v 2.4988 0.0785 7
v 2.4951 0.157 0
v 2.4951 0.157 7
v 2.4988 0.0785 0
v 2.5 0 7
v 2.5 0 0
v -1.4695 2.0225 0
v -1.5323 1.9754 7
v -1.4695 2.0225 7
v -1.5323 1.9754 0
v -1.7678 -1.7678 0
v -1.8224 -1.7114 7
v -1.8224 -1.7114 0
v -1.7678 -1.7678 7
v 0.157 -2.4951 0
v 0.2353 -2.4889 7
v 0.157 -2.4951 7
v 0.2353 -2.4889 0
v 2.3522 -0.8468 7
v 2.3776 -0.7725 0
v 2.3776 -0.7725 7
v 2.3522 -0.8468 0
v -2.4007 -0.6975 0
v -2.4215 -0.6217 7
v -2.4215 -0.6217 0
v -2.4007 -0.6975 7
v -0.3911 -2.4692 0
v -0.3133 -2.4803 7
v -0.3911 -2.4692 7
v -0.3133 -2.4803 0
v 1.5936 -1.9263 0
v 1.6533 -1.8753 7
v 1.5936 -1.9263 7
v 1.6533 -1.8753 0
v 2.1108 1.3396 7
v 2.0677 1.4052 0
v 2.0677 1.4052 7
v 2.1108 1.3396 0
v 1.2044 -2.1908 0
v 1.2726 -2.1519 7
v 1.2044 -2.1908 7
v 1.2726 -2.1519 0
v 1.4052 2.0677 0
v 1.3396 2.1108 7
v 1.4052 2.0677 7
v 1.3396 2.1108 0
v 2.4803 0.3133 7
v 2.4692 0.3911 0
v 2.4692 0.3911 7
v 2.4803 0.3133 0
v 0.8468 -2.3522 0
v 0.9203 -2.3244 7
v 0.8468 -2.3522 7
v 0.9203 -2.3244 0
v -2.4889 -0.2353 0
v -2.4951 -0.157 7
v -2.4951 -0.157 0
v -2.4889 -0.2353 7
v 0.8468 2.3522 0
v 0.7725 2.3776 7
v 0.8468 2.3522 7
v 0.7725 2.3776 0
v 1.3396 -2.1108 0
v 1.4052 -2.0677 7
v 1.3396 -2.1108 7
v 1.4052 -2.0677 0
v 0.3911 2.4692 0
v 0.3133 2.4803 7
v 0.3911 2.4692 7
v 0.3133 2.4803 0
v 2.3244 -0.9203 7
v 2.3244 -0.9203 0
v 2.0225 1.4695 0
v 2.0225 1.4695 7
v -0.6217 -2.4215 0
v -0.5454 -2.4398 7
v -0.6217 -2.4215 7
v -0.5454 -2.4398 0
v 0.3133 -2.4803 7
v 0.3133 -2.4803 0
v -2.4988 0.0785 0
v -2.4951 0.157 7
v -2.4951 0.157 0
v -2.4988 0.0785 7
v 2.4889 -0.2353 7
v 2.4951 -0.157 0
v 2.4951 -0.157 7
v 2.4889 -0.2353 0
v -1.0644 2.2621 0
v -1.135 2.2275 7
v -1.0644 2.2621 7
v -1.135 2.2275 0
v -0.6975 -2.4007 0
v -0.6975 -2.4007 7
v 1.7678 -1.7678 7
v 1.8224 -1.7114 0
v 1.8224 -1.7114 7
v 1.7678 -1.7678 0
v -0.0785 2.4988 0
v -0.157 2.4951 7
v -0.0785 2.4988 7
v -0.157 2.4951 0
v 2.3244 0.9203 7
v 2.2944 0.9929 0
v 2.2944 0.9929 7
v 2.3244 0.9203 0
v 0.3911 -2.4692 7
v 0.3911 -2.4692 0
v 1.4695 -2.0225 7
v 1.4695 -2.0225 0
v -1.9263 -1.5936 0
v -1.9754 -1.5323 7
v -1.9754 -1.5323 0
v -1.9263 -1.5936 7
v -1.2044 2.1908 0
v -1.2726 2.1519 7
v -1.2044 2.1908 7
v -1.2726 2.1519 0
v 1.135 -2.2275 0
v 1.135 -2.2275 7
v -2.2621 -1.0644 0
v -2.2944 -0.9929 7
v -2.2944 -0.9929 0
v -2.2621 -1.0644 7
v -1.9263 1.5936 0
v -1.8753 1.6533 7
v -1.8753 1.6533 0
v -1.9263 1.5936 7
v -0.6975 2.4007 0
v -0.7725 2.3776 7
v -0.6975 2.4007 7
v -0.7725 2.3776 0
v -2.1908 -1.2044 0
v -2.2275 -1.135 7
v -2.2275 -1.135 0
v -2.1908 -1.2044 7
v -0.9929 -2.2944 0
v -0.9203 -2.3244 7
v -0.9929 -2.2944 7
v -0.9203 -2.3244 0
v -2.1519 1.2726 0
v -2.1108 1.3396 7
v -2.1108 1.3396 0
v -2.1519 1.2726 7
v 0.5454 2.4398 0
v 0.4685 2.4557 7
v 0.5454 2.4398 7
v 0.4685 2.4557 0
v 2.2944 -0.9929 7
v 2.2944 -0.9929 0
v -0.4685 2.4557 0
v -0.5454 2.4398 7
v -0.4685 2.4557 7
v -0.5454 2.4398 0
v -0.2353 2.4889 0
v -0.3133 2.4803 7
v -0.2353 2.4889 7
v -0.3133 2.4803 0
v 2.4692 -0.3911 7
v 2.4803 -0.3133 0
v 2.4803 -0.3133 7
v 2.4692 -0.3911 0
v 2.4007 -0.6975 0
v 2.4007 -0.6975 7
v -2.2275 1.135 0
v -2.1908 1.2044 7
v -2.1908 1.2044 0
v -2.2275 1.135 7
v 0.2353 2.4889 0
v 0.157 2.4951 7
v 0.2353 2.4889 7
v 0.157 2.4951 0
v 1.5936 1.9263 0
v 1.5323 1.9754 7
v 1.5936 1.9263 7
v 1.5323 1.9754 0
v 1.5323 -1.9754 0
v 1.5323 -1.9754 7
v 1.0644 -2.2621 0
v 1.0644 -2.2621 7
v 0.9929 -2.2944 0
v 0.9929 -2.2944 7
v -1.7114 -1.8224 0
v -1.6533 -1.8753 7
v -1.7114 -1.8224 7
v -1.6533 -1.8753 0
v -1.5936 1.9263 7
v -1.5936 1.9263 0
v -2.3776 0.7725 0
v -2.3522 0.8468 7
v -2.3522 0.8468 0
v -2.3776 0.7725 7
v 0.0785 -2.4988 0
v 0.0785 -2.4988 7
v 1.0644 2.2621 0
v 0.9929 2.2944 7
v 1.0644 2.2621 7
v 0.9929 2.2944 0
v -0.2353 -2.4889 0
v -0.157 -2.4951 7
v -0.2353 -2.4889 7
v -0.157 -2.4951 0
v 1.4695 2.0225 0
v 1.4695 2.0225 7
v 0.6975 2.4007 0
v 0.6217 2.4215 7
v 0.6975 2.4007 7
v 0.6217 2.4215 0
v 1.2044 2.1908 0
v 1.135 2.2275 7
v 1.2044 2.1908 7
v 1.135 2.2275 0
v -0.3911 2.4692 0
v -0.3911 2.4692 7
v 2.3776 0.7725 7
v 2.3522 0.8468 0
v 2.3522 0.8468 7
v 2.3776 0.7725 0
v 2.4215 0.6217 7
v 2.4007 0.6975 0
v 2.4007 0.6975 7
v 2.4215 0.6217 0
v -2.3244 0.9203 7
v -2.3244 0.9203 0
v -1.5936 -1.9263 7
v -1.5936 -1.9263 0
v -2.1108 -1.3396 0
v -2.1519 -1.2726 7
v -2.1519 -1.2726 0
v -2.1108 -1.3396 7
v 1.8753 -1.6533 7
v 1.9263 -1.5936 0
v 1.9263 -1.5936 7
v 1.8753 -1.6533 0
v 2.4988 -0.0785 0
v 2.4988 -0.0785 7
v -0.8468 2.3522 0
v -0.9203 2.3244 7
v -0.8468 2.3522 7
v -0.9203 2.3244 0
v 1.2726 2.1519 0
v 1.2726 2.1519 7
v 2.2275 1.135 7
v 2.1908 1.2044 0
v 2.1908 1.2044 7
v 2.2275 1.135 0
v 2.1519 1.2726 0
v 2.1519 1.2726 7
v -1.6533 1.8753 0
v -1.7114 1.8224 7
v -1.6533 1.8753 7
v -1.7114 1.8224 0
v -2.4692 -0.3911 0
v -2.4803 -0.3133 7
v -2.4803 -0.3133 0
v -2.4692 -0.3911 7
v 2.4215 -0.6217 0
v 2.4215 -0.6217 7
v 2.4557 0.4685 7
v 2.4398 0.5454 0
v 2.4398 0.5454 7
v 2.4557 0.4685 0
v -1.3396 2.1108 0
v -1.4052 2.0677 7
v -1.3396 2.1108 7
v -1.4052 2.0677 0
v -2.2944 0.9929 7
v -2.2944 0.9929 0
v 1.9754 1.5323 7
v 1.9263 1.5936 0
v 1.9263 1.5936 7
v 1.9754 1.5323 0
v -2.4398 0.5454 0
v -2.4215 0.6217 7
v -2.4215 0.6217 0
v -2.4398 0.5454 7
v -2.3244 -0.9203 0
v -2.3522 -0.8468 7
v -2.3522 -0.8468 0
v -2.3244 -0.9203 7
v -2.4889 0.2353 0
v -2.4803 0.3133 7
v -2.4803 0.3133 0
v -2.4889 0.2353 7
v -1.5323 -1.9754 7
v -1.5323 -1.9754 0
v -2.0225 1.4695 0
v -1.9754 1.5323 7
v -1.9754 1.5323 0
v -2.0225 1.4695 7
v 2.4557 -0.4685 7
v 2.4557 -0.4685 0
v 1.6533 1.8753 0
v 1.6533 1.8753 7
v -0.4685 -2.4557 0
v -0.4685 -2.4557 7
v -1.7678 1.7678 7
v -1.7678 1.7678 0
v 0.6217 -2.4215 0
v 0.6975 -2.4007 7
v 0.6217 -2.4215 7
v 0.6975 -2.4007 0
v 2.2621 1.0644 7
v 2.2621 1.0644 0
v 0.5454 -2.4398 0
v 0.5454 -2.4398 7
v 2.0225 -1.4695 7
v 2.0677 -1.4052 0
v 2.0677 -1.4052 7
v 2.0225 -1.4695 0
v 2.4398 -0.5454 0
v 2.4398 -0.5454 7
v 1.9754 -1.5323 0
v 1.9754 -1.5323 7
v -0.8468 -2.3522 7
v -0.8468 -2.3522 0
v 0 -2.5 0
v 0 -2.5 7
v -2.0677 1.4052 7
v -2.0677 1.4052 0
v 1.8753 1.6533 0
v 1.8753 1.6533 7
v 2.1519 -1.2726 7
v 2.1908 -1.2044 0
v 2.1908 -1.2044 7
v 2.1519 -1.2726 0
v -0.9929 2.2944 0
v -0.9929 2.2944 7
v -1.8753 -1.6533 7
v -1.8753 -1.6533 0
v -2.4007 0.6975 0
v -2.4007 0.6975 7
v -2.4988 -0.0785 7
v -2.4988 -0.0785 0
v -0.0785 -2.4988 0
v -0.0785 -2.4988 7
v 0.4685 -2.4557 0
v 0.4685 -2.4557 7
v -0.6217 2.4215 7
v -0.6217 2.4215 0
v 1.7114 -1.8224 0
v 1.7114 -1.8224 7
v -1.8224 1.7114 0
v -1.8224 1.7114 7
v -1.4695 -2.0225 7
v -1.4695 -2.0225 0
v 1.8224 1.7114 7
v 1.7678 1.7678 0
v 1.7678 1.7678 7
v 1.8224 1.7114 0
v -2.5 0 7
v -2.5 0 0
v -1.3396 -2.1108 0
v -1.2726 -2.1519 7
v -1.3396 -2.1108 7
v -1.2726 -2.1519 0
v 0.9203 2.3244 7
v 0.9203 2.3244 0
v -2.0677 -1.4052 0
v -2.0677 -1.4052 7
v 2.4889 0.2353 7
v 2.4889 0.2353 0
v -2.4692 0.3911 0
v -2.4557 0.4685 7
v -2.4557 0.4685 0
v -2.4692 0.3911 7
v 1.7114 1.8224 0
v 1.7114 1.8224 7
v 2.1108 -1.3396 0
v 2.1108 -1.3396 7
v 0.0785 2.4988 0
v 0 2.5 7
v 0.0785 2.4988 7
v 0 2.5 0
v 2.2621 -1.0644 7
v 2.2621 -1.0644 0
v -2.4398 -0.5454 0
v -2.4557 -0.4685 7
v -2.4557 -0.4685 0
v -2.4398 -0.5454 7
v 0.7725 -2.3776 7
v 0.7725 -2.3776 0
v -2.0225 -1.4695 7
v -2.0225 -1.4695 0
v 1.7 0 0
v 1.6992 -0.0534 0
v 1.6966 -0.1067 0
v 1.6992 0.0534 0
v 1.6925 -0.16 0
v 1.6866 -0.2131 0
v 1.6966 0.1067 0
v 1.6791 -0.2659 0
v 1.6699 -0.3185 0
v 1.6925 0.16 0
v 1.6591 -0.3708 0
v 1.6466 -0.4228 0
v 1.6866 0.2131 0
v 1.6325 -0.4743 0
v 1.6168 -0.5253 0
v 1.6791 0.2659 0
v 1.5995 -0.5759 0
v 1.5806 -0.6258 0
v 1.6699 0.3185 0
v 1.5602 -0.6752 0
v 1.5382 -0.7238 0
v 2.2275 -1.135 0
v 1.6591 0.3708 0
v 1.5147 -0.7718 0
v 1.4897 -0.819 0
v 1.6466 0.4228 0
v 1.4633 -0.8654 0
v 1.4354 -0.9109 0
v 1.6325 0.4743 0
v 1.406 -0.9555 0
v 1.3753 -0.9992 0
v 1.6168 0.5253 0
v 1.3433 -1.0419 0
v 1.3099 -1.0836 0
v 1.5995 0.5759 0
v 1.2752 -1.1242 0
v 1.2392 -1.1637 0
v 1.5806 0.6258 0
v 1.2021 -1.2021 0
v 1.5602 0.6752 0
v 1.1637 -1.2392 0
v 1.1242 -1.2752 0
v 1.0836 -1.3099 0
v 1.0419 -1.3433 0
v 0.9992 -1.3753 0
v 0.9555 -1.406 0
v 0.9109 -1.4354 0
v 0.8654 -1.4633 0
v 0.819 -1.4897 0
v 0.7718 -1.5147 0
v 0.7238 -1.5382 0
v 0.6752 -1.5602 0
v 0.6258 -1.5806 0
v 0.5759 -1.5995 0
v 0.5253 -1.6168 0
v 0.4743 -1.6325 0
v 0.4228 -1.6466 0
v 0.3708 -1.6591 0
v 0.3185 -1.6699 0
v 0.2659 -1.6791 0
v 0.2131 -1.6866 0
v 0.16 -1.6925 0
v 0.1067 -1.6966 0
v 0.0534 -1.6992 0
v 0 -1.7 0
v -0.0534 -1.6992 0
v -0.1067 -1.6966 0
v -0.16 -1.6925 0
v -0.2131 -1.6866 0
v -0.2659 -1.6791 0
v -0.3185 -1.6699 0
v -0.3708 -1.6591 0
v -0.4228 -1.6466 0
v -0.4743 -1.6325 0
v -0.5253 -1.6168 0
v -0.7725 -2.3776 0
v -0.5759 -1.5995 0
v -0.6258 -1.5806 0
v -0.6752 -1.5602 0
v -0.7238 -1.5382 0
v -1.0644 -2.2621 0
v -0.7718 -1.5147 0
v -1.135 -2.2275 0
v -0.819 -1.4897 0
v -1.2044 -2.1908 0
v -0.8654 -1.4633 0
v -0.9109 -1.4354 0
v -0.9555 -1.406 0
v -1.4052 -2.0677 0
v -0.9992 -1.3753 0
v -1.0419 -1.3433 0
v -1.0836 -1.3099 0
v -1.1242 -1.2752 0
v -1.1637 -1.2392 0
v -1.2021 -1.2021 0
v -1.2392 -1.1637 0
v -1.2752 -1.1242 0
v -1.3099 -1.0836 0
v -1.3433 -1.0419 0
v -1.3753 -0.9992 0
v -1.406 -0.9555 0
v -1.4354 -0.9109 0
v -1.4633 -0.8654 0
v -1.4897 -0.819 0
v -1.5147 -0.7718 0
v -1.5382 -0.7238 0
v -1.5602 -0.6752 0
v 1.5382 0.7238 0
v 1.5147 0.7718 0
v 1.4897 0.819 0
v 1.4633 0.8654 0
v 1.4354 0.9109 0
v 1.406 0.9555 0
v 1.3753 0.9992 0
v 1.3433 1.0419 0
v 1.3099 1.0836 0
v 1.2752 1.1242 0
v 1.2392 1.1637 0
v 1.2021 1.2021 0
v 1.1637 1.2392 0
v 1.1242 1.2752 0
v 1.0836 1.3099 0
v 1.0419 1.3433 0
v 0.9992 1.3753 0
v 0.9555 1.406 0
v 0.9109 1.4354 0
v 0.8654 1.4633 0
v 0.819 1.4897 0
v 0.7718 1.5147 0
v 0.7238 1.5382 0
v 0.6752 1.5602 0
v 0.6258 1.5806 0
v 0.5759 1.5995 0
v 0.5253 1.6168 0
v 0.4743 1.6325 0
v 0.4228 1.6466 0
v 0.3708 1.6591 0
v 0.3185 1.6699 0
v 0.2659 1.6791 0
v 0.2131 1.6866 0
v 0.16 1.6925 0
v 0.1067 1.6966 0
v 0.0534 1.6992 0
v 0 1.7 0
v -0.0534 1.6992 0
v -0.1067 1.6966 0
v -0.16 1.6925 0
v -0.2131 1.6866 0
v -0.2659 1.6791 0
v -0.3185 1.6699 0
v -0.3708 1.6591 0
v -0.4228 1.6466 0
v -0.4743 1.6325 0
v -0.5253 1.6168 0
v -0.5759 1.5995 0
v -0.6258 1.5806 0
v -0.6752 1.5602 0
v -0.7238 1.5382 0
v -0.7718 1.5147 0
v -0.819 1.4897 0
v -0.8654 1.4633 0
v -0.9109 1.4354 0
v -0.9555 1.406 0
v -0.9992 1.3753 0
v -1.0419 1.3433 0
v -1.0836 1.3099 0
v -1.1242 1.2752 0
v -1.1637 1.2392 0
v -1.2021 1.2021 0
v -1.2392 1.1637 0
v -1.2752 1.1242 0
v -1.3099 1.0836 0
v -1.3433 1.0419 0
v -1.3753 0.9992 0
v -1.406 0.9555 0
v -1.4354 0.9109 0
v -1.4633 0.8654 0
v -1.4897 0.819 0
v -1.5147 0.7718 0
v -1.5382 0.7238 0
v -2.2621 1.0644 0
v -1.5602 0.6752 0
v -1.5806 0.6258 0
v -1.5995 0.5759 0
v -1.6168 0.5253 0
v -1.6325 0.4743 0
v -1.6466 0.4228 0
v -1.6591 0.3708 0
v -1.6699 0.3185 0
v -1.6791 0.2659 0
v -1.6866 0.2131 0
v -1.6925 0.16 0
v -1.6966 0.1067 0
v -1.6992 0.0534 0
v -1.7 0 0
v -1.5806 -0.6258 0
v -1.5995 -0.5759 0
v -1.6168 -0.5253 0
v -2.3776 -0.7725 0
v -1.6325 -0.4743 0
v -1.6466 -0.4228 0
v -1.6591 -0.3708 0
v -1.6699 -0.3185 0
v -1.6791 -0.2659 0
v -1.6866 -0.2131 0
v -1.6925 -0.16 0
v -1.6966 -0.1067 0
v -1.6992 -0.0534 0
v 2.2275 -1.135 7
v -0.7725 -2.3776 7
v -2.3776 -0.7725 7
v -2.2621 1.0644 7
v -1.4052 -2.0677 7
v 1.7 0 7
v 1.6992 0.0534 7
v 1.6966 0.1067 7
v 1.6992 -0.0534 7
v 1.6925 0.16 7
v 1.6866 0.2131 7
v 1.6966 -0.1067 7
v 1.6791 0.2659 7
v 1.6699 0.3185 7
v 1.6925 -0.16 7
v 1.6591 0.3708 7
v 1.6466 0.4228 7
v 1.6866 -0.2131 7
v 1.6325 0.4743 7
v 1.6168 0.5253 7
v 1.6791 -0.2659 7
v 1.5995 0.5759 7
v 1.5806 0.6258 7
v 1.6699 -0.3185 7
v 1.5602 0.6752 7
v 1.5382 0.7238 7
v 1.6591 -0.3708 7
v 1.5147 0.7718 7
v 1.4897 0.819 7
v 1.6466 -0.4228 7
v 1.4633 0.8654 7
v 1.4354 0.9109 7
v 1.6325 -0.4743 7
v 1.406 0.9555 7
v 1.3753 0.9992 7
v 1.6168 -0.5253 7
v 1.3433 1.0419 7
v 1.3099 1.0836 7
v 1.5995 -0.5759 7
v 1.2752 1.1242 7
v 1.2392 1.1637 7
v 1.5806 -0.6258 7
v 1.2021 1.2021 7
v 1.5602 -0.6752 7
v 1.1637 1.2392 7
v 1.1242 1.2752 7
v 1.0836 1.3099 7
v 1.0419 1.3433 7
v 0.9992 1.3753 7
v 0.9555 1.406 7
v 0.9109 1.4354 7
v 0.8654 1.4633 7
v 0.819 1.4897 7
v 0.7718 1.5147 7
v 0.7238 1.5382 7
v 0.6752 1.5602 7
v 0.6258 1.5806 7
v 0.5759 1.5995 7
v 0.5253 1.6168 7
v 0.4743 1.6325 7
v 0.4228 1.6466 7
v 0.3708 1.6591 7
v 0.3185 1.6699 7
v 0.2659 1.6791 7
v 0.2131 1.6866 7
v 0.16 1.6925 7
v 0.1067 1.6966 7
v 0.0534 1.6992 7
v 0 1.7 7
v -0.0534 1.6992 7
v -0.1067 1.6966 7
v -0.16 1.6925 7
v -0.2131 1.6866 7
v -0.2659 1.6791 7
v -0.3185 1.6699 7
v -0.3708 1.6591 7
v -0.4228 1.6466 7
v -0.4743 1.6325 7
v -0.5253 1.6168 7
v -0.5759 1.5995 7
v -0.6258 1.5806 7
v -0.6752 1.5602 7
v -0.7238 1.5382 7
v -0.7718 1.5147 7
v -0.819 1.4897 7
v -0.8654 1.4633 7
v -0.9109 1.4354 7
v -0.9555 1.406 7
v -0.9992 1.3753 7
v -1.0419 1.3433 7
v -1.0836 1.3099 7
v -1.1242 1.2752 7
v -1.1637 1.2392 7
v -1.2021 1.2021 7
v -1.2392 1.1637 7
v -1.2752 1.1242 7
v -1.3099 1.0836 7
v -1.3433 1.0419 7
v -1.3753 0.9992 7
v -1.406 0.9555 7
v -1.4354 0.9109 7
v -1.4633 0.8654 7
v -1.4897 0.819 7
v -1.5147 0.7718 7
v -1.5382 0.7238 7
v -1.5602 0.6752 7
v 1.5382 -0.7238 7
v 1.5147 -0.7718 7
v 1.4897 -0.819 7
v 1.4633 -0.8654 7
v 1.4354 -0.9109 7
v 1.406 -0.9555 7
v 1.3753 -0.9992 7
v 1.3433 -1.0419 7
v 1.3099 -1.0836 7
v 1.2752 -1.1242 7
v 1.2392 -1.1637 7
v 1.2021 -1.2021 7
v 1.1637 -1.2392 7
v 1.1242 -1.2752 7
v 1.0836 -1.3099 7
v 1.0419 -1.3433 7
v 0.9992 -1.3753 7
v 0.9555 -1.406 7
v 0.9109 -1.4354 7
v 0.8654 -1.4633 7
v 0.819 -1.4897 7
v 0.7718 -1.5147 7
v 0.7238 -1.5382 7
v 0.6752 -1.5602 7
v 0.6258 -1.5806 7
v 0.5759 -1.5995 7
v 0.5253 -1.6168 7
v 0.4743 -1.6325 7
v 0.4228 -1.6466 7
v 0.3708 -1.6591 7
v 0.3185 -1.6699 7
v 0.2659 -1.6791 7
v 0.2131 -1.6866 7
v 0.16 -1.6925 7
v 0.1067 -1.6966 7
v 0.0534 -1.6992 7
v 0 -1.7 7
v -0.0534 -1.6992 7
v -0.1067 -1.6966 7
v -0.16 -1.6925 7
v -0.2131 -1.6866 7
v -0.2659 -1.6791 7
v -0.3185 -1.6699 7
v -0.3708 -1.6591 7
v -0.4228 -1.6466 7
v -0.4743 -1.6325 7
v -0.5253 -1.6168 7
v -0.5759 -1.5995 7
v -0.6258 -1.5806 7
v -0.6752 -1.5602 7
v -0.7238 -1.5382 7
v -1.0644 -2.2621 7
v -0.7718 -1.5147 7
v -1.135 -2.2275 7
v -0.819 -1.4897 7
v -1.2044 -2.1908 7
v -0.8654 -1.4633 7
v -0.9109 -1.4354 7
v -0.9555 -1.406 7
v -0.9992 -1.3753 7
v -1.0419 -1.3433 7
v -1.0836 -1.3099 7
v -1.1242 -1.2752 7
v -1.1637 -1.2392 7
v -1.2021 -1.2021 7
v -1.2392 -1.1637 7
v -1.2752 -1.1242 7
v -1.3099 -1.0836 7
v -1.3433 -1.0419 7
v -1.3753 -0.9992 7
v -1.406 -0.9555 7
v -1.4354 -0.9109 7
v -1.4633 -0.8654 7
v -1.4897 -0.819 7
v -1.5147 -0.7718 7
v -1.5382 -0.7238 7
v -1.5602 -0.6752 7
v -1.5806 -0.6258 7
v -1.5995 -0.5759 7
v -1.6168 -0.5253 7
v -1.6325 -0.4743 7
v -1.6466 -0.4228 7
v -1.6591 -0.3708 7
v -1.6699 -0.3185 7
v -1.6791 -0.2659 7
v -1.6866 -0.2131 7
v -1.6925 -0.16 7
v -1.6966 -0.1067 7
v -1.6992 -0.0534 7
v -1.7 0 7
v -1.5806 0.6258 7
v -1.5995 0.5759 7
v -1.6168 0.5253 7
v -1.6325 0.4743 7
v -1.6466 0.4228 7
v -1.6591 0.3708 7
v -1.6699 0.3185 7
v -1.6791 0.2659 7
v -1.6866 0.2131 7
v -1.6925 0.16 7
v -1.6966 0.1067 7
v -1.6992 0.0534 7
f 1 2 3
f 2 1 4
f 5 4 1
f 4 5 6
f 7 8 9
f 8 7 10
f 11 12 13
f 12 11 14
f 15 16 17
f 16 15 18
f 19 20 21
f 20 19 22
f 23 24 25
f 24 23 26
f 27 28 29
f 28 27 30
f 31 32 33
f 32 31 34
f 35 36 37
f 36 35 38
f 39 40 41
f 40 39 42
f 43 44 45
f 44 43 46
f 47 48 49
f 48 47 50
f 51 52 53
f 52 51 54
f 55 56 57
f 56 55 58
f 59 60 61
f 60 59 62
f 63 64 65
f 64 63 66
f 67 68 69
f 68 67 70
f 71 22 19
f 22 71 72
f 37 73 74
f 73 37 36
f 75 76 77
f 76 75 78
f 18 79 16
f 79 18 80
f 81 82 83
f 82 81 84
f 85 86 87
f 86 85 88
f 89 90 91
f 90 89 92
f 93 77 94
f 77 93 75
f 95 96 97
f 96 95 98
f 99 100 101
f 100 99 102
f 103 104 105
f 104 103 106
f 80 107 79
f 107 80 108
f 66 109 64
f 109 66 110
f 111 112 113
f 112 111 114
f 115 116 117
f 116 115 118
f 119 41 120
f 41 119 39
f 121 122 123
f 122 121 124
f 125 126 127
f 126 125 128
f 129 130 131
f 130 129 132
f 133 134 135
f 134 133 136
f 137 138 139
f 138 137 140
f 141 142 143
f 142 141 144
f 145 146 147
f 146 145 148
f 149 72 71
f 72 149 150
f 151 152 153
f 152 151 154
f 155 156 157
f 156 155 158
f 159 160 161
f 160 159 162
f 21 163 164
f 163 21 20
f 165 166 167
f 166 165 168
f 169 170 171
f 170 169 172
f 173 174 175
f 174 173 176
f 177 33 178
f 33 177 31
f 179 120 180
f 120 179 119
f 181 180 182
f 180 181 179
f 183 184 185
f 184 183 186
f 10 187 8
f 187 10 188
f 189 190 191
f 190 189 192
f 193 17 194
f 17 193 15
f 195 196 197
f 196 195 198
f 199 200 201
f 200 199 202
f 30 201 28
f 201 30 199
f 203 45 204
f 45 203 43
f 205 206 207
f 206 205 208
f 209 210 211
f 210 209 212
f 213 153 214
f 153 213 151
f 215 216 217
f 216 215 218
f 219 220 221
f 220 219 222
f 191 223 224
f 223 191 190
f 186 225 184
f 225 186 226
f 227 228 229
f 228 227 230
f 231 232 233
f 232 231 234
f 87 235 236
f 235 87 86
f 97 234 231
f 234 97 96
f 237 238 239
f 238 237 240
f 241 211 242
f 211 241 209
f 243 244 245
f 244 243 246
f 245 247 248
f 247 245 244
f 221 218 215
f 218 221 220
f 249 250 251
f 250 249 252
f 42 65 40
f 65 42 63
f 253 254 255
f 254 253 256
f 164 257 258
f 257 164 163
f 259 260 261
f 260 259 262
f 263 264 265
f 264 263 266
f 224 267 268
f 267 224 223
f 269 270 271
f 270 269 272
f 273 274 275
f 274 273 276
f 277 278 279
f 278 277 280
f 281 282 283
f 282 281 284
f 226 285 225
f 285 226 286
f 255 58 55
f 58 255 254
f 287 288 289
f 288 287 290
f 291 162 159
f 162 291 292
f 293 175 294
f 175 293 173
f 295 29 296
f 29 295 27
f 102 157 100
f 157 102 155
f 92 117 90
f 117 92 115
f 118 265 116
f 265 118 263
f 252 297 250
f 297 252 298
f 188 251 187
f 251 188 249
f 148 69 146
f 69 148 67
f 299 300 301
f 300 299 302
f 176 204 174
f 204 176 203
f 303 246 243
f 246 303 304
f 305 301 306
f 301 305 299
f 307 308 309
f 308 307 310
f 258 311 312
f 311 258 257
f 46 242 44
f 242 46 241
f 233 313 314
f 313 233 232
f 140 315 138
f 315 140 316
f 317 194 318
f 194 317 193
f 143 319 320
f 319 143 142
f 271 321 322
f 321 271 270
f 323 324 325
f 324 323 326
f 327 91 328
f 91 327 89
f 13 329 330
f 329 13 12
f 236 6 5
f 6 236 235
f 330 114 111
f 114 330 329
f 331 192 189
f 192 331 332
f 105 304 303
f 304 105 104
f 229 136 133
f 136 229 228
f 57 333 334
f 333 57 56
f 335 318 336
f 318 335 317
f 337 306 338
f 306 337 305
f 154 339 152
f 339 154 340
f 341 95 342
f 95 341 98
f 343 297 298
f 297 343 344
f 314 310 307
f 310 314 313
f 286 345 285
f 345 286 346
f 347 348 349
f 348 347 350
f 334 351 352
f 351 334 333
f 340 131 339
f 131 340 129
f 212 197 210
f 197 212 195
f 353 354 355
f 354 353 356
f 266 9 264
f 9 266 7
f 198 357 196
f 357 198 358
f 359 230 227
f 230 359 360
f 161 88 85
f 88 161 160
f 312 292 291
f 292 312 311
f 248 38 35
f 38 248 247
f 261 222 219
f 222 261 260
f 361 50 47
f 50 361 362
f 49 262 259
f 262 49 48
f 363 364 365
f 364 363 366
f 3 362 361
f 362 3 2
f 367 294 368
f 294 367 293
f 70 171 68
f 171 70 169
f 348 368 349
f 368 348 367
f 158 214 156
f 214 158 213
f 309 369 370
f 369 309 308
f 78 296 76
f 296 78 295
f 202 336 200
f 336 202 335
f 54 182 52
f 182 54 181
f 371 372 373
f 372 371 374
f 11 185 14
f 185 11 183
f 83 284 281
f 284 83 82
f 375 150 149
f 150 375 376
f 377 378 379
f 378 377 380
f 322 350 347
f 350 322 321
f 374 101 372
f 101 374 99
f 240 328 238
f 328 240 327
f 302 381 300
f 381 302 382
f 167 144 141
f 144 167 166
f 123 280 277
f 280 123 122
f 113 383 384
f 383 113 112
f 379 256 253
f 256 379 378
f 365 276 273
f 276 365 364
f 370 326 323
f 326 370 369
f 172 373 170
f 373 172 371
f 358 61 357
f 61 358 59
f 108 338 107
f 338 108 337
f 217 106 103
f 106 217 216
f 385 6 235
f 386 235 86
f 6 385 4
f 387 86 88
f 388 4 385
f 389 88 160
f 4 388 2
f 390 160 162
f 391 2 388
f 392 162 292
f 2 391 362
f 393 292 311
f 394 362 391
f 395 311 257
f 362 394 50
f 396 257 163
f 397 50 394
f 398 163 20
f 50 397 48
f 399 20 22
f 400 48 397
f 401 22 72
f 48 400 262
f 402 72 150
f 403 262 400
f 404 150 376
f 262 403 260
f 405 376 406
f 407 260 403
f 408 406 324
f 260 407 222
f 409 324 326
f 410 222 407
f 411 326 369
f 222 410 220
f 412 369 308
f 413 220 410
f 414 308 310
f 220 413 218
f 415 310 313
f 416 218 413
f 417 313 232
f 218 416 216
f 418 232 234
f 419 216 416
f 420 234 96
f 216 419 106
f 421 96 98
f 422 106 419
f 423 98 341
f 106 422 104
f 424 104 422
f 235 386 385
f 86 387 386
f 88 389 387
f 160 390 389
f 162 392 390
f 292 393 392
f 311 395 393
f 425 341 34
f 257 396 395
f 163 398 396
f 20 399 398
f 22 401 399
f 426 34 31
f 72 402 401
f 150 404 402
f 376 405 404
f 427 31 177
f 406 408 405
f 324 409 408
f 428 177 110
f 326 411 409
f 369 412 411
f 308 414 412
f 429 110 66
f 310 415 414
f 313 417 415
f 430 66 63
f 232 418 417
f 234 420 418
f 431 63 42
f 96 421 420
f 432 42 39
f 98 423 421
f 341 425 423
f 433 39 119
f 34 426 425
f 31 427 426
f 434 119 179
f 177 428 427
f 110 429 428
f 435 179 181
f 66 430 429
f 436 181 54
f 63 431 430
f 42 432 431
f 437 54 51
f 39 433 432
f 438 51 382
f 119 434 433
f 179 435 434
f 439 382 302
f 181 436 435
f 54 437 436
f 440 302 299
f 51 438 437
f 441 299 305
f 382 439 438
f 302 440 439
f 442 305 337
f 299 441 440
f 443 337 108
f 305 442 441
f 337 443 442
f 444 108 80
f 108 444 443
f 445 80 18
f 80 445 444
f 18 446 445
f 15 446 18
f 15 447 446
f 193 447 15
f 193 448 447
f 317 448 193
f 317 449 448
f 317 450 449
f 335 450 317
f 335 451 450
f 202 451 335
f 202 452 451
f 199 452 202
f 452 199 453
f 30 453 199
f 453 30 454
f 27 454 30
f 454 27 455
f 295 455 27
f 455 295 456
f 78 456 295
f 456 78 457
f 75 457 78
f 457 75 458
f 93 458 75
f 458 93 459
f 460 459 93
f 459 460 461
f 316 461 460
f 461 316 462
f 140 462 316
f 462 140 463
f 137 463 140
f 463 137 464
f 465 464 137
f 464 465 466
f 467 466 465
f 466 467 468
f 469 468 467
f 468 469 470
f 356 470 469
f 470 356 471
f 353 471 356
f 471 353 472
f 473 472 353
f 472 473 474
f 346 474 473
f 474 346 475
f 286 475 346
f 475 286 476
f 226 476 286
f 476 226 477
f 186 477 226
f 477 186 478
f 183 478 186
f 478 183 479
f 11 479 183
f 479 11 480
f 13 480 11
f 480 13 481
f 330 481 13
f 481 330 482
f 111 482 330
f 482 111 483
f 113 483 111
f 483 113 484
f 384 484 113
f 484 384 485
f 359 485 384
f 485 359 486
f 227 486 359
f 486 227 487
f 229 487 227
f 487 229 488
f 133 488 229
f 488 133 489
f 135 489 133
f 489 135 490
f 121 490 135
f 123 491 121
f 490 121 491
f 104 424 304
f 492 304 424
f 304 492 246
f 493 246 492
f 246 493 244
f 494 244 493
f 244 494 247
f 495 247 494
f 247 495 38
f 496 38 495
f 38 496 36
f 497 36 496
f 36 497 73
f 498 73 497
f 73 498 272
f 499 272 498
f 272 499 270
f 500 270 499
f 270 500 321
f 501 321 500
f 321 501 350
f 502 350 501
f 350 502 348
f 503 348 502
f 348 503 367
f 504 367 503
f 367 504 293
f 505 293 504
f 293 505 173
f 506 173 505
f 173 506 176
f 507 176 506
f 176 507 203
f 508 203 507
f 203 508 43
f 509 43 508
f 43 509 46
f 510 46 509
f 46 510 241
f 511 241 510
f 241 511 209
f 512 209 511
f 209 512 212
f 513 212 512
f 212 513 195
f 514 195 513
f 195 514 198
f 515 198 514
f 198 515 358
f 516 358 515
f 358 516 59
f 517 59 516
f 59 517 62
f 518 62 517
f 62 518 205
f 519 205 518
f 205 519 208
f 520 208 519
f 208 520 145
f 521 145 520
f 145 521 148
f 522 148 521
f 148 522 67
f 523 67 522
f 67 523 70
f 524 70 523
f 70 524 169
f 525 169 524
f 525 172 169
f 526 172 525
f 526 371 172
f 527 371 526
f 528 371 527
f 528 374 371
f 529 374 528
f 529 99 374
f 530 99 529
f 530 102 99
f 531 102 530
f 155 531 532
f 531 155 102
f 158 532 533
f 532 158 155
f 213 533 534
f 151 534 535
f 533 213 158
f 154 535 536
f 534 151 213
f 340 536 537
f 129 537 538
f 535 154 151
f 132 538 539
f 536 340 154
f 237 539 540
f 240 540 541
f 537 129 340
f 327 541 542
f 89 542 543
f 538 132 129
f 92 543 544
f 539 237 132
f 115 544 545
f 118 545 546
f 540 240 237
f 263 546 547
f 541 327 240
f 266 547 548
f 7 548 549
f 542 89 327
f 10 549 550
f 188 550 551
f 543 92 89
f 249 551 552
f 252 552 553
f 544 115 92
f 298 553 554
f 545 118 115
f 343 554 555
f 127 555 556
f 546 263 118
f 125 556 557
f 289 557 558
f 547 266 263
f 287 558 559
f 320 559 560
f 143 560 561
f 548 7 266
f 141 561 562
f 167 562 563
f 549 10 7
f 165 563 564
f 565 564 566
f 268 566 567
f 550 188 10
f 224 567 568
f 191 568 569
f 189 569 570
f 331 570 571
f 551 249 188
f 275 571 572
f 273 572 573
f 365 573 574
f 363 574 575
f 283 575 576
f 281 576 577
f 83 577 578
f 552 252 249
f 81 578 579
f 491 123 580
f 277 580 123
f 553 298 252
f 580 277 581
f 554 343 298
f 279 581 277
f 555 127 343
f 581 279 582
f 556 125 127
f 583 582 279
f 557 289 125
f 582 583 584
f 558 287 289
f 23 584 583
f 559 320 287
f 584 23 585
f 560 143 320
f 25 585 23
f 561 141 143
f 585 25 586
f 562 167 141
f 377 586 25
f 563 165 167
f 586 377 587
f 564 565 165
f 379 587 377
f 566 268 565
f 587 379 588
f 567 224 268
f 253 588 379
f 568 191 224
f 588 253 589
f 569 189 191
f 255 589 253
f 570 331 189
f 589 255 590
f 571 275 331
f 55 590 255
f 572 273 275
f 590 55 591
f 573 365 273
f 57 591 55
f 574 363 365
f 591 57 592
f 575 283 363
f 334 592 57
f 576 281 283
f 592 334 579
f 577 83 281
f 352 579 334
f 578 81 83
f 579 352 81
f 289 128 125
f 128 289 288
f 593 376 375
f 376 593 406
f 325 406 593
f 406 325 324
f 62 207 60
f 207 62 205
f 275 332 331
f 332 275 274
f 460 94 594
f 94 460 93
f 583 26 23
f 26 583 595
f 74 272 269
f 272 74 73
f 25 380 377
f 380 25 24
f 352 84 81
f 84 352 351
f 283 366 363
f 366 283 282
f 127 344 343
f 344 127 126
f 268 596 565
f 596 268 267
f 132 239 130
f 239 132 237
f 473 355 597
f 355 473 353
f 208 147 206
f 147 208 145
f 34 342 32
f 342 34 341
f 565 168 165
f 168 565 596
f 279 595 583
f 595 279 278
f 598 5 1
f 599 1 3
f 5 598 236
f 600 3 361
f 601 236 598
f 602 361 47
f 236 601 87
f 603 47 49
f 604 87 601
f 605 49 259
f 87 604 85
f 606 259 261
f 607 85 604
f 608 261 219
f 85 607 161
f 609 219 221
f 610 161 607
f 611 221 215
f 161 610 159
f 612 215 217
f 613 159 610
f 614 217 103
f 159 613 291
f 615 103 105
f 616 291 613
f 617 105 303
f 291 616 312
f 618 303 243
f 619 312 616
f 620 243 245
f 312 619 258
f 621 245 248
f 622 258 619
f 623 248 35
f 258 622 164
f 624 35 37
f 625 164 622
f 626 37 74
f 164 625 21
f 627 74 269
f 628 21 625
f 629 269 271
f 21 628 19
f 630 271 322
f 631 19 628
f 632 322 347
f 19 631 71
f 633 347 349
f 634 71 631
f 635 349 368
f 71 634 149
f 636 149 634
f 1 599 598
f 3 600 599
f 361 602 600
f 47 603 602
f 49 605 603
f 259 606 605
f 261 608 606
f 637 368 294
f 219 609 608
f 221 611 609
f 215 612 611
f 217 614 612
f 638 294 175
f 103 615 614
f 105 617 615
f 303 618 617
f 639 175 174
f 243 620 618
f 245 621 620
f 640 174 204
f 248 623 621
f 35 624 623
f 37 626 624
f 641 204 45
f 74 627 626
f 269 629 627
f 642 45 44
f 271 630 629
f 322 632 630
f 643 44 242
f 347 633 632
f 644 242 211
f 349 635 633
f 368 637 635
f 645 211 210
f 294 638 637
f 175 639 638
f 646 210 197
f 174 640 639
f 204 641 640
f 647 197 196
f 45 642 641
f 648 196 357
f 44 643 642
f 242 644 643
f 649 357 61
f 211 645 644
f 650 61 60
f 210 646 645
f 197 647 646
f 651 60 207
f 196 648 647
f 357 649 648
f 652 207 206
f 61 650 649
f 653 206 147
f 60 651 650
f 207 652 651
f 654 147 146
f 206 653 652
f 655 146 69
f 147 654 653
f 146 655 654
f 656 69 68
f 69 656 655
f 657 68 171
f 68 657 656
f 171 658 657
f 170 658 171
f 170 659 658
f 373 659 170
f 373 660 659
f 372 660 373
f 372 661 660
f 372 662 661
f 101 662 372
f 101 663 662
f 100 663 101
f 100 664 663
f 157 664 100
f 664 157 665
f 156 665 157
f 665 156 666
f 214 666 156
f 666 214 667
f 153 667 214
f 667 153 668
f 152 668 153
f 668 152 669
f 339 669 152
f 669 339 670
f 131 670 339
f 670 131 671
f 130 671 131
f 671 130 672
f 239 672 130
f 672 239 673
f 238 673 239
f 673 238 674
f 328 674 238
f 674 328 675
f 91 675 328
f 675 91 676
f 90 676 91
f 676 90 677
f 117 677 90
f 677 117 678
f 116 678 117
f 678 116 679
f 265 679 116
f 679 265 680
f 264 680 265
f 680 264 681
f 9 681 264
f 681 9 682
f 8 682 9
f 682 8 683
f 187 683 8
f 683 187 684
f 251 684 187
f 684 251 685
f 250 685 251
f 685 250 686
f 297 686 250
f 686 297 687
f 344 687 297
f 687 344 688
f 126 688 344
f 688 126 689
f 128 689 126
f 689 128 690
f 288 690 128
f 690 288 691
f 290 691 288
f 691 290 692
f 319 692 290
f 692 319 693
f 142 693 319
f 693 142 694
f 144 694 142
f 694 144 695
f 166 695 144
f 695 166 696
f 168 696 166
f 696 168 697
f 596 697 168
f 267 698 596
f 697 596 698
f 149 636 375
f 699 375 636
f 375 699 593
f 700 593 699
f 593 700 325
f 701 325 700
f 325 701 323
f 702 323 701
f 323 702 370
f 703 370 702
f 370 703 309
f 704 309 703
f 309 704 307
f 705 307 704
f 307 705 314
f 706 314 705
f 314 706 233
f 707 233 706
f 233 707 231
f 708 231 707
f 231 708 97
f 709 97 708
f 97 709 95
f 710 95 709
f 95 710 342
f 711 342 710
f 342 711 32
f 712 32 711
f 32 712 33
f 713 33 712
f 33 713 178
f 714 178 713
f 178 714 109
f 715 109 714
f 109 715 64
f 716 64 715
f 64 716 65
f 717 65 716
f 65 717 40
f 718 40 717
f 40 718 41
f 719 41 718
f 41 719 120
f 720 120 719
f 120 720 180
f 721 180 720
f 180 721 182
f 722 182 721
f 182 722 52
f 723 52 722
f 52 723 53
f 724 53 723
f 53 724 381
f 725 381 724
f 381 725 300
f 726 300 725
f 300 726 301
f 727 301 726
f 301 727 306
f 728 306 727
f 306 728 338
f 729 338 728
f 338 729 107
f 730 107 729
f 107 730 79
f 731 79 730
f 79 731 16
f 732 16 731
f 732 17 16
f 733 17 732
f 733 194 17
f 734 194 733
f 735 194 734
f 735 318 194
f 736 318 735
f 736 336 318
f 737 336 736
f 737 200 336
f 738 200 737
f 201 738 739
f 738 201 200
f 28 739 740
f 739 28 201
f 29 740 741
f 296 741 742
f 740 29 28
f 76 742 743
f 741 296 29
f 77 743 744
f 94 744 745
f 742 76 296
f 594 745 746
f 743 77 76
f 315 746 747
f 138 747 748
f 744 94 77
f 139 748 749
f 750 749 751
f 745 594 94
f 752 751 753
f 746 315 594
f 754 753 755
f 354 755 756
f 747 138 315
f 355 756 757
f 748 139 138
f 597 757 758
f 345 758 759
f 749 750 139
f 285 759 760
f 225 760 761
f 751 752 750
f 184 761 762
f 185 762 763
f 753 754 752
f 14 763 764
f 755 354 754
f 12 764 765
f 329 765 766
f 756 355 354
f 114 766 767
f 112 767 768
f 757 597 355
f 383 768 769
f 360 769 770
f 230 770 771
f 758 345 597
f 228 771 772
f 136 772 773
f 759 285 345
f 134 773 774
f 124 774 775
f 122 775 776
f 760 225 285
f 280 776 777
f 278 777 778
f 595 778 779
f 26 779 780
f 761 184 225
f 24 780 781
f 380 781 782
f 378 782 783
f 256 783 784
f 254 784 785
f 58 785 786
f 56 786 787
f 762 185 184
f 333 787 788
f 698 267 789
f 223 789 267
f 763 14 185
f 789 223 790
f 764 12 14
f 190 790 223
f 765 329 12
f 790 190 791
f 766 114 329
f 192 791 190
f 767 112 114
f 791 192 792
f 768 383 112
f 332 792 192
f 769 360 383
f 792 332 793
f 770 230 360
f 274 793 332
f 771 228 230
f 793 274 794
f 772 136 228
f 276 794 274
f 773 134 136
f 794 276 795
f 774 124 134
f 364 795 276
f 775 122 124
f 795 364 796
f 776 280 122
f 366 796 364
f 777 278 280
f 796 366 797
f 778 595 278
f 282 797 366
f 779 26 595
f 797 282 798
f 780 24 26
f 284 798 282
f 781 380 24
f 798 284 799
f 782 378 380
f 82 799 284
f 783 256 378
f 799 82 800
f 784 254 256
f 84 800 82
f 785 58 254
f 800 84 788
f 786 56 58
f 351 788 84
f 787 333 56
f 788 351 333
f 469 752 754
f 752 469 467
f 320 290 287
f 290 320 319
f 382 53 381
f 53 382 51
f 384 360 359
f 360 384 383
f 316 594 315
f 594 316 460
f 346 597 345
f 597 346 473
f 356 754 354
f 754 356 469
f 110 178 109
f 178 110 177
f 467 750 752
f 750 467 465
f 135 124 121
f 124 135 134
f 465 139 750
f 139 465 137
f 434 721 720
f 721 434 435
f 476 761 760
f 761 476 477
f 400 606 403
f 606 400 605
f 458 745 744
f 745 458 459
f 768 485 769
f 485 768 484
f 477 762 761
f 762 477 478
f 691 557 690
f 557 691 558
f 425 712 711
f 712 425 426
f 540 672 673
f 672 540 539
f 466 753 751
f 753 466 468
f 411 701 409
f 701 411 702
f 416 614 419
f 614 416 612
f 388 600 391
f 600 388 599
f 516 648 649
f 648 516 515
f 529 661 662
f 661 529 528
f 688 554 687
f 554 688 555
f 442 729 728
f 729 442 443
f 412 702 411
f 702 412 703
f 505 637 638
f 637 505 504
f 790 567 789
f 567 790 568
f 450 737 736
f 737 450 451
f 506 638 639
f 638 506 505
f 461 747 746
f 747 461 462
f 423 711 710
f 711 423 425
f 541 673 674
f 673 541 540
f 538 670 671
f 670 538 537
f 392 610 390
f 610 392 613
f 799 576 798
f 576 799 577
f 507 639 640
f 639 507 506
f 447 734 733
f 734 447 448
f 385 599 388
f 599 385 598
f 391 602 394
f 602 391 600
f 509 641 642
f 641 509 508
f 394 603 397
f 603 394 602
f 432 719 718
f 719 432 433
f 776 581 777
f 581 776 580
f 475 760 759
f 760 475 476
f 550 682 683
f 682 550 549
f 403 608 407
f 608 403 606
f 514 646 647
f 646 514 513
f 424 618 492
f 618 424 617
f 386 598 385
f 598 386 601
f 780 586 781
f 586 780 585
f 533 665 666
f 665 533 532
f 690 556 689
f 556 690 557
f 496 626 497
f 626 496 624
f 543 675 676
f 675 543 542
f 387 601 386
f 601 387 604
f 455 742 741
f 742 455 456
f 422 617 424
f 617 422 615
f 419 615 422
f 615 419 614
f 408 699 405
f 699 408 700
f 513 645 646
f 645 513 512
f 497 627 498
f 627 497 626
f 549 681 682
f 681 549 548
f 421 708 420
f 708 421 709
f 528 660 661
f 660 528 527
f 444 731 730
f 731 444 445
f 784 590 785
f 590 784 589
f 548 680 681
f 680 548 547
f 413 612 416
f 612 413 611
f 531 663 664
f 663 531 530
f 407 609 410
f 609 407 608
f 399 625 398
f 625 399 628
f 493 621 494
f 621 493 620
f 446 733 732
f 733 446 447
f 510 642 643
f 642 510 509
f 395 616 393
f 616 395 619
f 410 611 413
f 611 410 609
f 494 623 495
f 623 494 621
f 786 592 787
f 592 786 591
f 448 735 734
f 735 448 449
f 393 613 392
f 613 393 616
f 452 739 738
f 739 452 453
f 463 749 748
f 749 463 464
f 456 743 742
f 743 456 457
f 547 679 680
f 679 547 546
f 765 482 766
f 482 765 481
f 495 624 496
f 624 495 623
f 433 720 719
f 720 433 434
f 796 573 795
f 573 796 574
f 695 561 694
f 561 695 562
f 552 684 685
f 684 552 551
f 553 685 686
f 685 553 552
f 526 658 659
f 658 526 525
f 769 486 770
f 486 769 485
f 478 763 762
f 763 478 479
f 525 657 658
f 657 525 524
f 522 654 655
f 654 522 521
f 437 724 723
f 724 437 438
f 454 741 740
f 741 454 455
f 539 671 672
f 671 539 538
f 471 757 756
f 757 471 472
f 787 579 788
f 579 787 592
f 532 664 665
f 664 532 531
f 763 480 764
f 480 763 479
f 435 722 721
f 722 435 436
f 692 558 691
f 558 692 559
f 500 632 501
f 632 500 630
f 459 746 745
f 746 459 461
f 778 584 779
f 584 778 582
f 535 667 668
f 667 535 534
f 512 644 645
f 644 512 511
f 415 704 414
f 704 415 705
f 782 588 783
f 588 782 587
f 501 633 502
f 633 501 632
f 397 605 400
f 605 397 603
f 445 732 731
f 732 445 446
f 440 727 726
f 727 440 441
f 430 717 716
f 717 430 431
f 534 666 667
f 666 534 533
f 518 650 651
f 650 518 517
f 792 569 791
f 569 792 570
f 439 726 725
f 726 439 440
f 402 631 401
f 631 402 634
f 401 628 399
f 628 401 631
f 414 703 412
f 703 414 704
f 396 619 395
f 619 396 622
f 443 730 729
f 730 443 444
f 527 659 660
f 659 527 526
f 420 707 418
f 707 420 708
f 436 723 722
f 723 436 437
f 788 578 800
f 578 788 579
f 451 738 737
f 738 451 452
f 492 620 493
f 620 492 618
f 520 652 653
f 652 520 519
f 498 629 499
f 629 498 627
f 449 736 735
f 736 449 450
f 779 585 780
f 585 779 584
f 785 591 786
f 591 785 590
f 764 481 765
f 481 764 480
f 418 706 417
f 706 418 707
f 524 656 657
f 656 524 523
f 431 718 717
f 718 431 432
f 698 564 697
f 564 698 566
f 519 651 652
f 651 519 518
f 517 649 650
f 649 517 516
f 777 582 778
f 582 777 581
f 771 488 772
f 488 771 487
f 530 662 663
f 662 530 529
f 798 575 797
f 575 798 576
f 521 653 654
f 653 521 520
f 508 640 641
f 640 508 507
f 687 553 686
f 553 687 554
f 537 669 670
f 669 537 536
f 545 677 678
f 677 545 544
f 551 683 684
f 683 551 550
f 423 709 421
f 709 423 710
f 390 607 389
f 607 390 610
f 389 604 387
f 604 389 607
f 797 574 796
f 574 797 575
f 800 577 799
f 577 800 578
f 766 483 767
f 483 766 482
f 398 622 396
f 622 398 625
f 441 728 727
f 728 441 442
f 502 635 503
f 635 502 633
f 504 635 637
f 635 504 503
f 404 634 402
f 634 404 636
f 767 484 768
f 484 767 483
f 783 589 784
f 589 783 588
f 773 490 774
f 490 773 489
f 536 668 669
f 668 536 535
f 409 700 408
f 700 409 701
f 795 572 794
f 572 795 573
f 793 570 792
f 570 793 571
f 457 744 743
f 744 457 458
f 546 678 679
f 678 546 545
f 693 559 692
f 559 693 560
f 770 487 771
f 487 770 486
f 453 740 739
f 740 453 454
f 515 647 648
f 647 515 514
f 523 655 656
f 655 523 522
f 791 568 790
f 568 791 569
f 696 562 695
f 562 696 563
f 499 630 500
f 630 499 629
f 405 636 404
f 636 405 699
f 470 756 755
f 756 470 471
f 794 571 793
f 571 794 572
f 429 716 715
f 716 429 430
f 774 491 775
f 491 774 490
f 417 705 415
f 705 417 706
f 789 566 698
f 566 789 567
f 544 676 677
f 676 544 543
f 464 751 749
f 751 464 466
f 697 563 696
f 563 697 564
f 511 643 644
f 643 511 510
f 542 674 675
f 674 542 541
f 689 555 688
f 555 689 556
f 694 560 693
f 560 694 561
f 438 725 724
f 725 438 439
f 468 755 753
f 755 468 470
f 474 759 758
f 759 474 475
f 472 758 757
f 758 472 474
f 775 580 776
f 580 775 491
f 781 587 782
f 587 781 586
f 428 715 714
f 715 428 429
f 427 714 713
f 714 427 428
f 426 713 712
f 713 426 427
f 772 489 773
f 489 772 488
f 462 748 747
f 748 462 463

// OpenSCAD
$fn = 200;

difference() {
    cylinder(7, 2.5, 2.5);
    translate([0, 0, -0.1])
        cylinder(7.2, 1.7, 1.7);
}
